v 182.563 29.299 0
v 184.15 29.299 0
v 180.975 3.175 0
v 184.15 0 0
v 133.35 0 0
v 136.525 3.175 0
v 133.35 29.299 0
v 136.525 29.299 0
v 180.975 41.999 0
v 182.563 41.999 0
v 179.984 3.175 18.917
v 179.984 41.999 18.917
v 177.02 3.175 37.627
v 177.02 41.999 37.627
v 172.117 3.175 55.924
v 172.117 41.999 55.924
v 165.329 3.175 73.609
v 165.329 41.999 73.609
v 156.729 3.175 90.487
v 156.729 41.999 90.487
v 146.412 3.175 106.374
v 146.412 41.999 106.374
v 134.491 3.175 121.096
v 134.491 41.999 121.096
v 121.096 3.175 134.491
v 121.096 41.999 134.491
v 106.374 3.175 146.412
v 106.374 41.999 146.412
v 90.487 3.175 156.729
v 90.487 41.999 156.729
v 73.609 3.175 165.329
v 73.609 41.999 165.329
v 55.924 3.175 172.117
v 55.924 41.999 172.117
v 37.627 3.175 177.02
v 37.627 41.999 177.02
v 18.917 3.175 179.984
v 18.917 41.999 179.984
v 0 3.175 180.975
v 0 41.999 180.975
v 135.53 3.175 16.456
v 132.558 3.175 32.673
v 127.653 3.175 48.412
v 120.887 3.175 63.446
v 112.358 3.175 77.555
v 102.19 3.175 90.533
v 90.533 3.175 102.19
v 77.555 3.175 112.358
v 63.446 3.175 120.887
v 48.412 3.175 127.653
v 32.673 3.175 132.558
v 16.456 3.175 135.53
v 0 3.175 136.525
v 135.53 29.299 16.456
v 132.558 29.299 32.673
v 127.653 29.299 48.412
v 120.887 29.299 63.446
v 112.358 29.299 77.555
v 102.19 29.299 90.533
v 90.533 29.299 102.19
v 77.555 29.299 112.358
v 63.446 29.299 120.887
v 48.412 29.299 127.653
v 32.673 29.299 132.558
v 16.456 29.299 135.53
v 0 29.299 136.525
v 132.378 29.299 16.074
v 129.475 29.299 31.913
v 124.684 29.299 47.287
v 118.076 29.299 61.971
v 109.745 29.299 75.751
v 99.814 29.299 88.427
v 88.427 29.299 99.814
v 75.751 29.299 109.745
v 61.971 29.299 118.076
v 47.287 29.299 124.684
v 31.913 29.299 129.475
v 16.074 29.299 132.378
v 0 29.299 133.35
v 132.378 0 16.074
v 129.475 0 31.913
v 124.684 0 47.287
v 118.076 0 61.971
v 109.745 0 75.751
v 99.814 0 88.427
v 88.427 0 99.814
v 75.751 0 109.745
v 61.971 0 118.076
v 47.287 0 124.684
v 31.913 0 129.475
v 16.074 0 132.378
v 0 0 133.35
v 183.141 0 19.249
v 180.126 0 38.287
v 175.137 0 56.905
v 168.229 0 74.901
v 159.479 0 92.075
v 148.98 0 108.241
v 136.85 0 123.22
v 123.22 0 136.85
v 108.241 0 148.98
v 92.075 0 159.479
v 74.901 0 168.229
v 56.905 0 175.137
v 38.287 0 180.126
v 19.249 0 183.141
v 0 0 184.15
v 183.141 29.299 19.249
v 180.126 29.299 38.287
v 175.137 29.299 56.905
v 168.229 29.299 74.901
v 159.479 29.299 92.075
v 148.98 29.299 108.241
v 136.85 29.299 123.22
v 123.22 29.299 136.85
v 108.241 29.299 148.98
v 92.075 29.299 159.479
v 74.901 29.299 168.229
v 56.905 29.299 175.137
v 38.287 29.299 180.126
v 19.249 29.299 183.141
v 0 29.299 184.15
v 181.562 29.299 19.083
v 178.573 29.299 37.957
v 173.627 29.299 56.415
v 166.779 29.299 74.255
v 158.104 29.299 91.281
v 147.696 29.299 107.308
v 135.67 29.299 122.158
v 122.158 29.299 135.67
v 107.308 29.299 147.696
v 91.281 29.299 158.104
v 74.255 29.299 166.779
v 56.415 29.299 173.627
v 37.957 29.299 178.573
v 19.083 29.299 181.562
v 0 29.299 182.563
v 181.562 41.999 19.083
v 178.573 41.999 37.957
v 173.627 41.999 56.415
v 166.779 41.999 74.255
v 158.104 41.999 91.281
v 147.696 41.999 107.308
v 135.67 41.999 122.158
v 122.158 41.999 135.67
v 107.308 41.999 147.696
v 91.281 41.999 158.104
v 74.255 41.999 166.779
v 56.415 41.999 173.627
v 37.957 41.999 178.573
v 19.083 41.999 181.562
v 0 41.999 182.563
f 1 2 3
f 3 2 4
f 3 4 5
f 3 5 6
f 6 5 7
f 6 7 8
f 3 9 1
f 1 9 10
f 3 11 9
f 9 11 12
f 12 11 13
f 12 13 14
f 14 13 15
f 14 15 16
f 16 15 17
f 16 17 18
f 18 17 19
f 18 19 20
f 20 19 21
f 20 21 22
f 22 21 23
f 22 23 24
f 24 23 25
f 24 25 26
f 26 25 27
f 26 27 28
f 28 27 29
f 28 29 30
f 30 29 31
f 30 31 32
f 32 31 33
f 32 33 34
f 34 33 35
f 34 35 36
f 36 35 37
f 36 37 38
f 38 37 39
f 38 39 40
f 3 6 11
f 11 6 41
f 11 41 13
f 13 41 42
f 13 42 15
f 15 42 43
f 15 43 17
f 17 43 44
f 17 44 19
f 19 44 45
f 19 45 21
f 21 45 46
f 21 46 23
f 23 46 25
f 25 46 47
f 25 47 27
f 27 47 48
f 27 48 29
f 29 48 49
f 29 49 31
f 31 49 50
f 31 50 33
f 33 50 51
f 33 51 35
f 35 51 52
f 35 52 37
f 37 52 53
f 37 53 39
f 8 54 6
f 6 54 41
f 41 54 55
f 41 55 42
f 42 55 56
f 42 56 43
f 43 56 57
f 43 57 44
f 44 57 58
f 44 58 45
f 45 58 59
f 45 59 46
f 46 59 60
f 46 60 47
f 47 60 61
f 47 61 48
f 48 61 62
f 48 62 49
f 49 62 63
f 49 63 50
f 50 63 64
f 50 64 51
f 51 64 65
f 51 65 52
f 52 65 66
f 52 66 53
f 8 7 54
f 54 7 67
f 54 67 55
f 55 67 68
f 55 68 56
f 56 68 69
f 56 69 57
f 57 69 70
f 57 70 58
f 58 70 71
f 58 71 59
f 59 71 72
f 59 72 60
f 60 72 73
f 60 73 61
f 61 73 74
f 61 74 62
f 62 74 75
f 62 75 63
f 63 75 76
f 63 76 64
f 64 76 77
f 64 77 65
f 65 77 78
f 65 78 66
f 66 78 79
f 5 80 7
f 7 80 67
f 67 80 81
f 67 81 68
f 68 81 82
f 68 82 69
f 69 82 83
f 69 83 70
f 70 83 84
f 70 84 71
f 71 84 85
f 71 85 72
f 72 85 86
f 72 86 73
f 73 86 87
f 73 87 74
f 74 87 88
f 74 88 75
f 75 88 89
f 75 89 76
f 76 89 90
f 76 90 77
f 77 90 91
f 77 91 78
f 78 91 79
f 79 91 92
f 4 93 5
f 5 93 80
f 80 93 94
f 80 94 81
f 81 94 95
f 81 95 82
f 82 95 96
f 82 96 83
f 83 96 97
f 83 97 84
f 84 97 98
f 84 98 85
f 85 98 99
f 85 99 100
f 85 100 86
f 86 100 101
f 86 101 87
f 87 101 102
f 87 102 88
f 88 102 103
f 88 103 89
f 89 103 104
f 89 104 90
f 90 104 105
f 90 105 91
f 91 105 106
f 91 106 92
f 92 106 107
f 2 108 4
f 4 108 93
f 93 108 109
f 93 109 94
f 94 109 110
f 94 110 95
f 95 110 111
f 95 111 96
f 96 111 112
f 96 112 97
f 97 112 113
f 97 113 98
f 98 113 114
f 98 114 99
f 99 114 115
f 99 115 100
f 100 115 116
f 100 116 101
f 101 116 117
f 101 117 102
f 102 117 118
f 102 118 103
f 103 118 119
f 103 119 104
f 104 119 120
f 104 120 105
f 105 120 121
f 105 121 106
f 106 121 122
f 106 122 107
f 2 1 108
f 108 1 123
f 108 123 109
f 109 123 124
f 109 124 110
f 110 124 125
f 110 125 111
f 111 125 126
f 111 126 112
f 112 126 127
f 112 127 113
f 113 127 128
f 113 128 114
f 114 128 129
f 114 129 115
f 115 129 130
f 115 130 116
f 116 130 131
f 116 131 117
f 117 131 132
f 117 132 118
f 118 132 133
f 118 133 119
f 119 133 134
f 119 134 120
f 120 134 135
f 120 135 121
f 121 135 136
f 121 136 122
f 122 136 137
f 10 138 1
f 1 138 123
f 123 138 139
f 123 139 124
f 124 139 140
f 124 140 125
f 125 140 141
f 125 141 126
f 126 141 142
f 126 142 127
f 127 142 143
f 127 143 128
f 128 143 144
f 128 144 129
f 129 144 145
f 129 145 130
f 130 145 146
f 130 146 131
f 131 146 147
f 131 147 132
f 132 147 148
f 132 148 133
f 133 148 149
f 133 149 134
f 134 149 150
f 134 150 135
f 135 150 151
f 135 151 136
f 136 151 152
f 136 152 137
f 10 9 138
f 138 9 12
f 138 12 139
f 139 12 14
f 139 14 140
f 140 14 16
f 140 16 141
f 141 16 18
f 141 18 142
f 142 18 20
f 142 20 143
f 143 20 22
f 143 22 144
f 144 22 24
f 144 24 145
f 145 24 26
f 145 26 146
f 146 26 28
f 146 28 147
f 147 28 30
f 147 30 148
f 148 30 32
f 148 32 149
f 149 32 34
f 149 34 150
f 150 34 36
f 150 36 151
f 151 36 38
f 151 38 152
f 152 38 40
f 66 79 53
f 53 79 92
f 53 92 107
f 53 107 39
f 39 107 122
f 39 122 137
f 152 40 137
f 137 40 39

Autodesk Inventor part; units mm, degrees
ref_plane "YZ Plane" through (0, 0, 0) normal (1, 0, 0) x (0, 1, 0)
ref_plane "XZ Plane" through (0, 0, 0) normal (0, 1, 0) x (-1, 0, 0)
ref_plane "XY Plane" through (0, 0, 0) normal (0, 0, 1) x (1, 0, 0)
sketch "Sketch1" plane through (0, 0, 0) normal (1, 0, 0) x (0, 1, 0)
  line L0 (0, 0) -> (50.8, 0)
  line L1 (0, 133.35) -> (0, 184.15)
  line L2 (0, 184.15) -> (29.2989, 184.15)
  line L3 (73.025, 184.15) -> (73.025, 133.35)
  line L4 (3.175, 180.975) -> (3.175, 136.525)
  line L5 (69.85, 136.525) -> (69.85, 180.975)
  line L6 (29.2989, 148.3694) -> (29.2989, 120.4477)
  line L7 (41.9989, 148.9666) -> (41.9989, 122.6874)
  line L8 (0, 133.35) -> (29.2989, 133.35)
  line L9 (41.9989, 133.35) -> (73.025, 133.35)
  line L10 (3.175, 136.525) -> (29.2989, 136.525)
  line L11 (41.9989, 136.525) -> (69.85, 136.525)
  line L12 (35.6489, 182.5625) -> (41.9989, 182.5625)
  line L13 (41.9989, 182.5625) -> (41.9989, 180.975)
  line L14 (35.6489, 182.5625) -> (29.2989, 182.5625)
  line L15 (29.2989, 182.5625) -> (29.2989, 184.15)
  line L16 (69.85, 180.975) -> (41.9989, 180.975)
  line L17 (35.6489, 180.975) -> (3.175, 180.975)
  line L18 (35.6489, 170.617) -> (35.6489, 180.975)
  line L19 (35.6489, 184.15) -> (35.6489, 201.7381)
  line L20 (35.6489, 180.975) -> (41.9989, 180.975)
  point P0 (3.175, 180.975)
  point P1 (69.85, 136.525)
  dimension "d0" = 50.8
  dimension "d3" = 50.8
  dimension "d4" = 73.025
  dimension "d5" = 3.175
  dimension "d6" = 3.175
  dimension "d7" = 3.175
  dimension "d8" = 3.175
  dimension "d9" = 3.175
  dimension "d11" = 3.175
  dimension "d13" = 26.1239
  dimension "d14" = 12.7
  dimension "d16" = 133.35
  dimension "d17" = 3.175
  dimension "d18" = 3.175
  dimension "d19" = 6.35
  dimension "d21" = 6.35
  dimension "d22" = 6.35
revolve "Revolution1" add sketch "Sketch1" angle 180 about axis through (0, 0, 0) along (0, 1, 0)
sketch "Sketch2" plane through (0, 0, 133.35) normal (0, -1, 0) x (1, 0, 0)
  line L0 (0, -133.35) -> (197.7454, -133.35)
  line L1 (197.7454, -133.35) -> (197.7454, -342.2428)
  line L2 (197.7454, -342.2428) -> (0, -342.2428)
  line L3 (0, -342.2428) -> (0, -133.35)
extrude "Extrusion1" cut sketch "Sketch2" against normal through all
properties part number "Outer_Shell_Bottom_Quarter"
